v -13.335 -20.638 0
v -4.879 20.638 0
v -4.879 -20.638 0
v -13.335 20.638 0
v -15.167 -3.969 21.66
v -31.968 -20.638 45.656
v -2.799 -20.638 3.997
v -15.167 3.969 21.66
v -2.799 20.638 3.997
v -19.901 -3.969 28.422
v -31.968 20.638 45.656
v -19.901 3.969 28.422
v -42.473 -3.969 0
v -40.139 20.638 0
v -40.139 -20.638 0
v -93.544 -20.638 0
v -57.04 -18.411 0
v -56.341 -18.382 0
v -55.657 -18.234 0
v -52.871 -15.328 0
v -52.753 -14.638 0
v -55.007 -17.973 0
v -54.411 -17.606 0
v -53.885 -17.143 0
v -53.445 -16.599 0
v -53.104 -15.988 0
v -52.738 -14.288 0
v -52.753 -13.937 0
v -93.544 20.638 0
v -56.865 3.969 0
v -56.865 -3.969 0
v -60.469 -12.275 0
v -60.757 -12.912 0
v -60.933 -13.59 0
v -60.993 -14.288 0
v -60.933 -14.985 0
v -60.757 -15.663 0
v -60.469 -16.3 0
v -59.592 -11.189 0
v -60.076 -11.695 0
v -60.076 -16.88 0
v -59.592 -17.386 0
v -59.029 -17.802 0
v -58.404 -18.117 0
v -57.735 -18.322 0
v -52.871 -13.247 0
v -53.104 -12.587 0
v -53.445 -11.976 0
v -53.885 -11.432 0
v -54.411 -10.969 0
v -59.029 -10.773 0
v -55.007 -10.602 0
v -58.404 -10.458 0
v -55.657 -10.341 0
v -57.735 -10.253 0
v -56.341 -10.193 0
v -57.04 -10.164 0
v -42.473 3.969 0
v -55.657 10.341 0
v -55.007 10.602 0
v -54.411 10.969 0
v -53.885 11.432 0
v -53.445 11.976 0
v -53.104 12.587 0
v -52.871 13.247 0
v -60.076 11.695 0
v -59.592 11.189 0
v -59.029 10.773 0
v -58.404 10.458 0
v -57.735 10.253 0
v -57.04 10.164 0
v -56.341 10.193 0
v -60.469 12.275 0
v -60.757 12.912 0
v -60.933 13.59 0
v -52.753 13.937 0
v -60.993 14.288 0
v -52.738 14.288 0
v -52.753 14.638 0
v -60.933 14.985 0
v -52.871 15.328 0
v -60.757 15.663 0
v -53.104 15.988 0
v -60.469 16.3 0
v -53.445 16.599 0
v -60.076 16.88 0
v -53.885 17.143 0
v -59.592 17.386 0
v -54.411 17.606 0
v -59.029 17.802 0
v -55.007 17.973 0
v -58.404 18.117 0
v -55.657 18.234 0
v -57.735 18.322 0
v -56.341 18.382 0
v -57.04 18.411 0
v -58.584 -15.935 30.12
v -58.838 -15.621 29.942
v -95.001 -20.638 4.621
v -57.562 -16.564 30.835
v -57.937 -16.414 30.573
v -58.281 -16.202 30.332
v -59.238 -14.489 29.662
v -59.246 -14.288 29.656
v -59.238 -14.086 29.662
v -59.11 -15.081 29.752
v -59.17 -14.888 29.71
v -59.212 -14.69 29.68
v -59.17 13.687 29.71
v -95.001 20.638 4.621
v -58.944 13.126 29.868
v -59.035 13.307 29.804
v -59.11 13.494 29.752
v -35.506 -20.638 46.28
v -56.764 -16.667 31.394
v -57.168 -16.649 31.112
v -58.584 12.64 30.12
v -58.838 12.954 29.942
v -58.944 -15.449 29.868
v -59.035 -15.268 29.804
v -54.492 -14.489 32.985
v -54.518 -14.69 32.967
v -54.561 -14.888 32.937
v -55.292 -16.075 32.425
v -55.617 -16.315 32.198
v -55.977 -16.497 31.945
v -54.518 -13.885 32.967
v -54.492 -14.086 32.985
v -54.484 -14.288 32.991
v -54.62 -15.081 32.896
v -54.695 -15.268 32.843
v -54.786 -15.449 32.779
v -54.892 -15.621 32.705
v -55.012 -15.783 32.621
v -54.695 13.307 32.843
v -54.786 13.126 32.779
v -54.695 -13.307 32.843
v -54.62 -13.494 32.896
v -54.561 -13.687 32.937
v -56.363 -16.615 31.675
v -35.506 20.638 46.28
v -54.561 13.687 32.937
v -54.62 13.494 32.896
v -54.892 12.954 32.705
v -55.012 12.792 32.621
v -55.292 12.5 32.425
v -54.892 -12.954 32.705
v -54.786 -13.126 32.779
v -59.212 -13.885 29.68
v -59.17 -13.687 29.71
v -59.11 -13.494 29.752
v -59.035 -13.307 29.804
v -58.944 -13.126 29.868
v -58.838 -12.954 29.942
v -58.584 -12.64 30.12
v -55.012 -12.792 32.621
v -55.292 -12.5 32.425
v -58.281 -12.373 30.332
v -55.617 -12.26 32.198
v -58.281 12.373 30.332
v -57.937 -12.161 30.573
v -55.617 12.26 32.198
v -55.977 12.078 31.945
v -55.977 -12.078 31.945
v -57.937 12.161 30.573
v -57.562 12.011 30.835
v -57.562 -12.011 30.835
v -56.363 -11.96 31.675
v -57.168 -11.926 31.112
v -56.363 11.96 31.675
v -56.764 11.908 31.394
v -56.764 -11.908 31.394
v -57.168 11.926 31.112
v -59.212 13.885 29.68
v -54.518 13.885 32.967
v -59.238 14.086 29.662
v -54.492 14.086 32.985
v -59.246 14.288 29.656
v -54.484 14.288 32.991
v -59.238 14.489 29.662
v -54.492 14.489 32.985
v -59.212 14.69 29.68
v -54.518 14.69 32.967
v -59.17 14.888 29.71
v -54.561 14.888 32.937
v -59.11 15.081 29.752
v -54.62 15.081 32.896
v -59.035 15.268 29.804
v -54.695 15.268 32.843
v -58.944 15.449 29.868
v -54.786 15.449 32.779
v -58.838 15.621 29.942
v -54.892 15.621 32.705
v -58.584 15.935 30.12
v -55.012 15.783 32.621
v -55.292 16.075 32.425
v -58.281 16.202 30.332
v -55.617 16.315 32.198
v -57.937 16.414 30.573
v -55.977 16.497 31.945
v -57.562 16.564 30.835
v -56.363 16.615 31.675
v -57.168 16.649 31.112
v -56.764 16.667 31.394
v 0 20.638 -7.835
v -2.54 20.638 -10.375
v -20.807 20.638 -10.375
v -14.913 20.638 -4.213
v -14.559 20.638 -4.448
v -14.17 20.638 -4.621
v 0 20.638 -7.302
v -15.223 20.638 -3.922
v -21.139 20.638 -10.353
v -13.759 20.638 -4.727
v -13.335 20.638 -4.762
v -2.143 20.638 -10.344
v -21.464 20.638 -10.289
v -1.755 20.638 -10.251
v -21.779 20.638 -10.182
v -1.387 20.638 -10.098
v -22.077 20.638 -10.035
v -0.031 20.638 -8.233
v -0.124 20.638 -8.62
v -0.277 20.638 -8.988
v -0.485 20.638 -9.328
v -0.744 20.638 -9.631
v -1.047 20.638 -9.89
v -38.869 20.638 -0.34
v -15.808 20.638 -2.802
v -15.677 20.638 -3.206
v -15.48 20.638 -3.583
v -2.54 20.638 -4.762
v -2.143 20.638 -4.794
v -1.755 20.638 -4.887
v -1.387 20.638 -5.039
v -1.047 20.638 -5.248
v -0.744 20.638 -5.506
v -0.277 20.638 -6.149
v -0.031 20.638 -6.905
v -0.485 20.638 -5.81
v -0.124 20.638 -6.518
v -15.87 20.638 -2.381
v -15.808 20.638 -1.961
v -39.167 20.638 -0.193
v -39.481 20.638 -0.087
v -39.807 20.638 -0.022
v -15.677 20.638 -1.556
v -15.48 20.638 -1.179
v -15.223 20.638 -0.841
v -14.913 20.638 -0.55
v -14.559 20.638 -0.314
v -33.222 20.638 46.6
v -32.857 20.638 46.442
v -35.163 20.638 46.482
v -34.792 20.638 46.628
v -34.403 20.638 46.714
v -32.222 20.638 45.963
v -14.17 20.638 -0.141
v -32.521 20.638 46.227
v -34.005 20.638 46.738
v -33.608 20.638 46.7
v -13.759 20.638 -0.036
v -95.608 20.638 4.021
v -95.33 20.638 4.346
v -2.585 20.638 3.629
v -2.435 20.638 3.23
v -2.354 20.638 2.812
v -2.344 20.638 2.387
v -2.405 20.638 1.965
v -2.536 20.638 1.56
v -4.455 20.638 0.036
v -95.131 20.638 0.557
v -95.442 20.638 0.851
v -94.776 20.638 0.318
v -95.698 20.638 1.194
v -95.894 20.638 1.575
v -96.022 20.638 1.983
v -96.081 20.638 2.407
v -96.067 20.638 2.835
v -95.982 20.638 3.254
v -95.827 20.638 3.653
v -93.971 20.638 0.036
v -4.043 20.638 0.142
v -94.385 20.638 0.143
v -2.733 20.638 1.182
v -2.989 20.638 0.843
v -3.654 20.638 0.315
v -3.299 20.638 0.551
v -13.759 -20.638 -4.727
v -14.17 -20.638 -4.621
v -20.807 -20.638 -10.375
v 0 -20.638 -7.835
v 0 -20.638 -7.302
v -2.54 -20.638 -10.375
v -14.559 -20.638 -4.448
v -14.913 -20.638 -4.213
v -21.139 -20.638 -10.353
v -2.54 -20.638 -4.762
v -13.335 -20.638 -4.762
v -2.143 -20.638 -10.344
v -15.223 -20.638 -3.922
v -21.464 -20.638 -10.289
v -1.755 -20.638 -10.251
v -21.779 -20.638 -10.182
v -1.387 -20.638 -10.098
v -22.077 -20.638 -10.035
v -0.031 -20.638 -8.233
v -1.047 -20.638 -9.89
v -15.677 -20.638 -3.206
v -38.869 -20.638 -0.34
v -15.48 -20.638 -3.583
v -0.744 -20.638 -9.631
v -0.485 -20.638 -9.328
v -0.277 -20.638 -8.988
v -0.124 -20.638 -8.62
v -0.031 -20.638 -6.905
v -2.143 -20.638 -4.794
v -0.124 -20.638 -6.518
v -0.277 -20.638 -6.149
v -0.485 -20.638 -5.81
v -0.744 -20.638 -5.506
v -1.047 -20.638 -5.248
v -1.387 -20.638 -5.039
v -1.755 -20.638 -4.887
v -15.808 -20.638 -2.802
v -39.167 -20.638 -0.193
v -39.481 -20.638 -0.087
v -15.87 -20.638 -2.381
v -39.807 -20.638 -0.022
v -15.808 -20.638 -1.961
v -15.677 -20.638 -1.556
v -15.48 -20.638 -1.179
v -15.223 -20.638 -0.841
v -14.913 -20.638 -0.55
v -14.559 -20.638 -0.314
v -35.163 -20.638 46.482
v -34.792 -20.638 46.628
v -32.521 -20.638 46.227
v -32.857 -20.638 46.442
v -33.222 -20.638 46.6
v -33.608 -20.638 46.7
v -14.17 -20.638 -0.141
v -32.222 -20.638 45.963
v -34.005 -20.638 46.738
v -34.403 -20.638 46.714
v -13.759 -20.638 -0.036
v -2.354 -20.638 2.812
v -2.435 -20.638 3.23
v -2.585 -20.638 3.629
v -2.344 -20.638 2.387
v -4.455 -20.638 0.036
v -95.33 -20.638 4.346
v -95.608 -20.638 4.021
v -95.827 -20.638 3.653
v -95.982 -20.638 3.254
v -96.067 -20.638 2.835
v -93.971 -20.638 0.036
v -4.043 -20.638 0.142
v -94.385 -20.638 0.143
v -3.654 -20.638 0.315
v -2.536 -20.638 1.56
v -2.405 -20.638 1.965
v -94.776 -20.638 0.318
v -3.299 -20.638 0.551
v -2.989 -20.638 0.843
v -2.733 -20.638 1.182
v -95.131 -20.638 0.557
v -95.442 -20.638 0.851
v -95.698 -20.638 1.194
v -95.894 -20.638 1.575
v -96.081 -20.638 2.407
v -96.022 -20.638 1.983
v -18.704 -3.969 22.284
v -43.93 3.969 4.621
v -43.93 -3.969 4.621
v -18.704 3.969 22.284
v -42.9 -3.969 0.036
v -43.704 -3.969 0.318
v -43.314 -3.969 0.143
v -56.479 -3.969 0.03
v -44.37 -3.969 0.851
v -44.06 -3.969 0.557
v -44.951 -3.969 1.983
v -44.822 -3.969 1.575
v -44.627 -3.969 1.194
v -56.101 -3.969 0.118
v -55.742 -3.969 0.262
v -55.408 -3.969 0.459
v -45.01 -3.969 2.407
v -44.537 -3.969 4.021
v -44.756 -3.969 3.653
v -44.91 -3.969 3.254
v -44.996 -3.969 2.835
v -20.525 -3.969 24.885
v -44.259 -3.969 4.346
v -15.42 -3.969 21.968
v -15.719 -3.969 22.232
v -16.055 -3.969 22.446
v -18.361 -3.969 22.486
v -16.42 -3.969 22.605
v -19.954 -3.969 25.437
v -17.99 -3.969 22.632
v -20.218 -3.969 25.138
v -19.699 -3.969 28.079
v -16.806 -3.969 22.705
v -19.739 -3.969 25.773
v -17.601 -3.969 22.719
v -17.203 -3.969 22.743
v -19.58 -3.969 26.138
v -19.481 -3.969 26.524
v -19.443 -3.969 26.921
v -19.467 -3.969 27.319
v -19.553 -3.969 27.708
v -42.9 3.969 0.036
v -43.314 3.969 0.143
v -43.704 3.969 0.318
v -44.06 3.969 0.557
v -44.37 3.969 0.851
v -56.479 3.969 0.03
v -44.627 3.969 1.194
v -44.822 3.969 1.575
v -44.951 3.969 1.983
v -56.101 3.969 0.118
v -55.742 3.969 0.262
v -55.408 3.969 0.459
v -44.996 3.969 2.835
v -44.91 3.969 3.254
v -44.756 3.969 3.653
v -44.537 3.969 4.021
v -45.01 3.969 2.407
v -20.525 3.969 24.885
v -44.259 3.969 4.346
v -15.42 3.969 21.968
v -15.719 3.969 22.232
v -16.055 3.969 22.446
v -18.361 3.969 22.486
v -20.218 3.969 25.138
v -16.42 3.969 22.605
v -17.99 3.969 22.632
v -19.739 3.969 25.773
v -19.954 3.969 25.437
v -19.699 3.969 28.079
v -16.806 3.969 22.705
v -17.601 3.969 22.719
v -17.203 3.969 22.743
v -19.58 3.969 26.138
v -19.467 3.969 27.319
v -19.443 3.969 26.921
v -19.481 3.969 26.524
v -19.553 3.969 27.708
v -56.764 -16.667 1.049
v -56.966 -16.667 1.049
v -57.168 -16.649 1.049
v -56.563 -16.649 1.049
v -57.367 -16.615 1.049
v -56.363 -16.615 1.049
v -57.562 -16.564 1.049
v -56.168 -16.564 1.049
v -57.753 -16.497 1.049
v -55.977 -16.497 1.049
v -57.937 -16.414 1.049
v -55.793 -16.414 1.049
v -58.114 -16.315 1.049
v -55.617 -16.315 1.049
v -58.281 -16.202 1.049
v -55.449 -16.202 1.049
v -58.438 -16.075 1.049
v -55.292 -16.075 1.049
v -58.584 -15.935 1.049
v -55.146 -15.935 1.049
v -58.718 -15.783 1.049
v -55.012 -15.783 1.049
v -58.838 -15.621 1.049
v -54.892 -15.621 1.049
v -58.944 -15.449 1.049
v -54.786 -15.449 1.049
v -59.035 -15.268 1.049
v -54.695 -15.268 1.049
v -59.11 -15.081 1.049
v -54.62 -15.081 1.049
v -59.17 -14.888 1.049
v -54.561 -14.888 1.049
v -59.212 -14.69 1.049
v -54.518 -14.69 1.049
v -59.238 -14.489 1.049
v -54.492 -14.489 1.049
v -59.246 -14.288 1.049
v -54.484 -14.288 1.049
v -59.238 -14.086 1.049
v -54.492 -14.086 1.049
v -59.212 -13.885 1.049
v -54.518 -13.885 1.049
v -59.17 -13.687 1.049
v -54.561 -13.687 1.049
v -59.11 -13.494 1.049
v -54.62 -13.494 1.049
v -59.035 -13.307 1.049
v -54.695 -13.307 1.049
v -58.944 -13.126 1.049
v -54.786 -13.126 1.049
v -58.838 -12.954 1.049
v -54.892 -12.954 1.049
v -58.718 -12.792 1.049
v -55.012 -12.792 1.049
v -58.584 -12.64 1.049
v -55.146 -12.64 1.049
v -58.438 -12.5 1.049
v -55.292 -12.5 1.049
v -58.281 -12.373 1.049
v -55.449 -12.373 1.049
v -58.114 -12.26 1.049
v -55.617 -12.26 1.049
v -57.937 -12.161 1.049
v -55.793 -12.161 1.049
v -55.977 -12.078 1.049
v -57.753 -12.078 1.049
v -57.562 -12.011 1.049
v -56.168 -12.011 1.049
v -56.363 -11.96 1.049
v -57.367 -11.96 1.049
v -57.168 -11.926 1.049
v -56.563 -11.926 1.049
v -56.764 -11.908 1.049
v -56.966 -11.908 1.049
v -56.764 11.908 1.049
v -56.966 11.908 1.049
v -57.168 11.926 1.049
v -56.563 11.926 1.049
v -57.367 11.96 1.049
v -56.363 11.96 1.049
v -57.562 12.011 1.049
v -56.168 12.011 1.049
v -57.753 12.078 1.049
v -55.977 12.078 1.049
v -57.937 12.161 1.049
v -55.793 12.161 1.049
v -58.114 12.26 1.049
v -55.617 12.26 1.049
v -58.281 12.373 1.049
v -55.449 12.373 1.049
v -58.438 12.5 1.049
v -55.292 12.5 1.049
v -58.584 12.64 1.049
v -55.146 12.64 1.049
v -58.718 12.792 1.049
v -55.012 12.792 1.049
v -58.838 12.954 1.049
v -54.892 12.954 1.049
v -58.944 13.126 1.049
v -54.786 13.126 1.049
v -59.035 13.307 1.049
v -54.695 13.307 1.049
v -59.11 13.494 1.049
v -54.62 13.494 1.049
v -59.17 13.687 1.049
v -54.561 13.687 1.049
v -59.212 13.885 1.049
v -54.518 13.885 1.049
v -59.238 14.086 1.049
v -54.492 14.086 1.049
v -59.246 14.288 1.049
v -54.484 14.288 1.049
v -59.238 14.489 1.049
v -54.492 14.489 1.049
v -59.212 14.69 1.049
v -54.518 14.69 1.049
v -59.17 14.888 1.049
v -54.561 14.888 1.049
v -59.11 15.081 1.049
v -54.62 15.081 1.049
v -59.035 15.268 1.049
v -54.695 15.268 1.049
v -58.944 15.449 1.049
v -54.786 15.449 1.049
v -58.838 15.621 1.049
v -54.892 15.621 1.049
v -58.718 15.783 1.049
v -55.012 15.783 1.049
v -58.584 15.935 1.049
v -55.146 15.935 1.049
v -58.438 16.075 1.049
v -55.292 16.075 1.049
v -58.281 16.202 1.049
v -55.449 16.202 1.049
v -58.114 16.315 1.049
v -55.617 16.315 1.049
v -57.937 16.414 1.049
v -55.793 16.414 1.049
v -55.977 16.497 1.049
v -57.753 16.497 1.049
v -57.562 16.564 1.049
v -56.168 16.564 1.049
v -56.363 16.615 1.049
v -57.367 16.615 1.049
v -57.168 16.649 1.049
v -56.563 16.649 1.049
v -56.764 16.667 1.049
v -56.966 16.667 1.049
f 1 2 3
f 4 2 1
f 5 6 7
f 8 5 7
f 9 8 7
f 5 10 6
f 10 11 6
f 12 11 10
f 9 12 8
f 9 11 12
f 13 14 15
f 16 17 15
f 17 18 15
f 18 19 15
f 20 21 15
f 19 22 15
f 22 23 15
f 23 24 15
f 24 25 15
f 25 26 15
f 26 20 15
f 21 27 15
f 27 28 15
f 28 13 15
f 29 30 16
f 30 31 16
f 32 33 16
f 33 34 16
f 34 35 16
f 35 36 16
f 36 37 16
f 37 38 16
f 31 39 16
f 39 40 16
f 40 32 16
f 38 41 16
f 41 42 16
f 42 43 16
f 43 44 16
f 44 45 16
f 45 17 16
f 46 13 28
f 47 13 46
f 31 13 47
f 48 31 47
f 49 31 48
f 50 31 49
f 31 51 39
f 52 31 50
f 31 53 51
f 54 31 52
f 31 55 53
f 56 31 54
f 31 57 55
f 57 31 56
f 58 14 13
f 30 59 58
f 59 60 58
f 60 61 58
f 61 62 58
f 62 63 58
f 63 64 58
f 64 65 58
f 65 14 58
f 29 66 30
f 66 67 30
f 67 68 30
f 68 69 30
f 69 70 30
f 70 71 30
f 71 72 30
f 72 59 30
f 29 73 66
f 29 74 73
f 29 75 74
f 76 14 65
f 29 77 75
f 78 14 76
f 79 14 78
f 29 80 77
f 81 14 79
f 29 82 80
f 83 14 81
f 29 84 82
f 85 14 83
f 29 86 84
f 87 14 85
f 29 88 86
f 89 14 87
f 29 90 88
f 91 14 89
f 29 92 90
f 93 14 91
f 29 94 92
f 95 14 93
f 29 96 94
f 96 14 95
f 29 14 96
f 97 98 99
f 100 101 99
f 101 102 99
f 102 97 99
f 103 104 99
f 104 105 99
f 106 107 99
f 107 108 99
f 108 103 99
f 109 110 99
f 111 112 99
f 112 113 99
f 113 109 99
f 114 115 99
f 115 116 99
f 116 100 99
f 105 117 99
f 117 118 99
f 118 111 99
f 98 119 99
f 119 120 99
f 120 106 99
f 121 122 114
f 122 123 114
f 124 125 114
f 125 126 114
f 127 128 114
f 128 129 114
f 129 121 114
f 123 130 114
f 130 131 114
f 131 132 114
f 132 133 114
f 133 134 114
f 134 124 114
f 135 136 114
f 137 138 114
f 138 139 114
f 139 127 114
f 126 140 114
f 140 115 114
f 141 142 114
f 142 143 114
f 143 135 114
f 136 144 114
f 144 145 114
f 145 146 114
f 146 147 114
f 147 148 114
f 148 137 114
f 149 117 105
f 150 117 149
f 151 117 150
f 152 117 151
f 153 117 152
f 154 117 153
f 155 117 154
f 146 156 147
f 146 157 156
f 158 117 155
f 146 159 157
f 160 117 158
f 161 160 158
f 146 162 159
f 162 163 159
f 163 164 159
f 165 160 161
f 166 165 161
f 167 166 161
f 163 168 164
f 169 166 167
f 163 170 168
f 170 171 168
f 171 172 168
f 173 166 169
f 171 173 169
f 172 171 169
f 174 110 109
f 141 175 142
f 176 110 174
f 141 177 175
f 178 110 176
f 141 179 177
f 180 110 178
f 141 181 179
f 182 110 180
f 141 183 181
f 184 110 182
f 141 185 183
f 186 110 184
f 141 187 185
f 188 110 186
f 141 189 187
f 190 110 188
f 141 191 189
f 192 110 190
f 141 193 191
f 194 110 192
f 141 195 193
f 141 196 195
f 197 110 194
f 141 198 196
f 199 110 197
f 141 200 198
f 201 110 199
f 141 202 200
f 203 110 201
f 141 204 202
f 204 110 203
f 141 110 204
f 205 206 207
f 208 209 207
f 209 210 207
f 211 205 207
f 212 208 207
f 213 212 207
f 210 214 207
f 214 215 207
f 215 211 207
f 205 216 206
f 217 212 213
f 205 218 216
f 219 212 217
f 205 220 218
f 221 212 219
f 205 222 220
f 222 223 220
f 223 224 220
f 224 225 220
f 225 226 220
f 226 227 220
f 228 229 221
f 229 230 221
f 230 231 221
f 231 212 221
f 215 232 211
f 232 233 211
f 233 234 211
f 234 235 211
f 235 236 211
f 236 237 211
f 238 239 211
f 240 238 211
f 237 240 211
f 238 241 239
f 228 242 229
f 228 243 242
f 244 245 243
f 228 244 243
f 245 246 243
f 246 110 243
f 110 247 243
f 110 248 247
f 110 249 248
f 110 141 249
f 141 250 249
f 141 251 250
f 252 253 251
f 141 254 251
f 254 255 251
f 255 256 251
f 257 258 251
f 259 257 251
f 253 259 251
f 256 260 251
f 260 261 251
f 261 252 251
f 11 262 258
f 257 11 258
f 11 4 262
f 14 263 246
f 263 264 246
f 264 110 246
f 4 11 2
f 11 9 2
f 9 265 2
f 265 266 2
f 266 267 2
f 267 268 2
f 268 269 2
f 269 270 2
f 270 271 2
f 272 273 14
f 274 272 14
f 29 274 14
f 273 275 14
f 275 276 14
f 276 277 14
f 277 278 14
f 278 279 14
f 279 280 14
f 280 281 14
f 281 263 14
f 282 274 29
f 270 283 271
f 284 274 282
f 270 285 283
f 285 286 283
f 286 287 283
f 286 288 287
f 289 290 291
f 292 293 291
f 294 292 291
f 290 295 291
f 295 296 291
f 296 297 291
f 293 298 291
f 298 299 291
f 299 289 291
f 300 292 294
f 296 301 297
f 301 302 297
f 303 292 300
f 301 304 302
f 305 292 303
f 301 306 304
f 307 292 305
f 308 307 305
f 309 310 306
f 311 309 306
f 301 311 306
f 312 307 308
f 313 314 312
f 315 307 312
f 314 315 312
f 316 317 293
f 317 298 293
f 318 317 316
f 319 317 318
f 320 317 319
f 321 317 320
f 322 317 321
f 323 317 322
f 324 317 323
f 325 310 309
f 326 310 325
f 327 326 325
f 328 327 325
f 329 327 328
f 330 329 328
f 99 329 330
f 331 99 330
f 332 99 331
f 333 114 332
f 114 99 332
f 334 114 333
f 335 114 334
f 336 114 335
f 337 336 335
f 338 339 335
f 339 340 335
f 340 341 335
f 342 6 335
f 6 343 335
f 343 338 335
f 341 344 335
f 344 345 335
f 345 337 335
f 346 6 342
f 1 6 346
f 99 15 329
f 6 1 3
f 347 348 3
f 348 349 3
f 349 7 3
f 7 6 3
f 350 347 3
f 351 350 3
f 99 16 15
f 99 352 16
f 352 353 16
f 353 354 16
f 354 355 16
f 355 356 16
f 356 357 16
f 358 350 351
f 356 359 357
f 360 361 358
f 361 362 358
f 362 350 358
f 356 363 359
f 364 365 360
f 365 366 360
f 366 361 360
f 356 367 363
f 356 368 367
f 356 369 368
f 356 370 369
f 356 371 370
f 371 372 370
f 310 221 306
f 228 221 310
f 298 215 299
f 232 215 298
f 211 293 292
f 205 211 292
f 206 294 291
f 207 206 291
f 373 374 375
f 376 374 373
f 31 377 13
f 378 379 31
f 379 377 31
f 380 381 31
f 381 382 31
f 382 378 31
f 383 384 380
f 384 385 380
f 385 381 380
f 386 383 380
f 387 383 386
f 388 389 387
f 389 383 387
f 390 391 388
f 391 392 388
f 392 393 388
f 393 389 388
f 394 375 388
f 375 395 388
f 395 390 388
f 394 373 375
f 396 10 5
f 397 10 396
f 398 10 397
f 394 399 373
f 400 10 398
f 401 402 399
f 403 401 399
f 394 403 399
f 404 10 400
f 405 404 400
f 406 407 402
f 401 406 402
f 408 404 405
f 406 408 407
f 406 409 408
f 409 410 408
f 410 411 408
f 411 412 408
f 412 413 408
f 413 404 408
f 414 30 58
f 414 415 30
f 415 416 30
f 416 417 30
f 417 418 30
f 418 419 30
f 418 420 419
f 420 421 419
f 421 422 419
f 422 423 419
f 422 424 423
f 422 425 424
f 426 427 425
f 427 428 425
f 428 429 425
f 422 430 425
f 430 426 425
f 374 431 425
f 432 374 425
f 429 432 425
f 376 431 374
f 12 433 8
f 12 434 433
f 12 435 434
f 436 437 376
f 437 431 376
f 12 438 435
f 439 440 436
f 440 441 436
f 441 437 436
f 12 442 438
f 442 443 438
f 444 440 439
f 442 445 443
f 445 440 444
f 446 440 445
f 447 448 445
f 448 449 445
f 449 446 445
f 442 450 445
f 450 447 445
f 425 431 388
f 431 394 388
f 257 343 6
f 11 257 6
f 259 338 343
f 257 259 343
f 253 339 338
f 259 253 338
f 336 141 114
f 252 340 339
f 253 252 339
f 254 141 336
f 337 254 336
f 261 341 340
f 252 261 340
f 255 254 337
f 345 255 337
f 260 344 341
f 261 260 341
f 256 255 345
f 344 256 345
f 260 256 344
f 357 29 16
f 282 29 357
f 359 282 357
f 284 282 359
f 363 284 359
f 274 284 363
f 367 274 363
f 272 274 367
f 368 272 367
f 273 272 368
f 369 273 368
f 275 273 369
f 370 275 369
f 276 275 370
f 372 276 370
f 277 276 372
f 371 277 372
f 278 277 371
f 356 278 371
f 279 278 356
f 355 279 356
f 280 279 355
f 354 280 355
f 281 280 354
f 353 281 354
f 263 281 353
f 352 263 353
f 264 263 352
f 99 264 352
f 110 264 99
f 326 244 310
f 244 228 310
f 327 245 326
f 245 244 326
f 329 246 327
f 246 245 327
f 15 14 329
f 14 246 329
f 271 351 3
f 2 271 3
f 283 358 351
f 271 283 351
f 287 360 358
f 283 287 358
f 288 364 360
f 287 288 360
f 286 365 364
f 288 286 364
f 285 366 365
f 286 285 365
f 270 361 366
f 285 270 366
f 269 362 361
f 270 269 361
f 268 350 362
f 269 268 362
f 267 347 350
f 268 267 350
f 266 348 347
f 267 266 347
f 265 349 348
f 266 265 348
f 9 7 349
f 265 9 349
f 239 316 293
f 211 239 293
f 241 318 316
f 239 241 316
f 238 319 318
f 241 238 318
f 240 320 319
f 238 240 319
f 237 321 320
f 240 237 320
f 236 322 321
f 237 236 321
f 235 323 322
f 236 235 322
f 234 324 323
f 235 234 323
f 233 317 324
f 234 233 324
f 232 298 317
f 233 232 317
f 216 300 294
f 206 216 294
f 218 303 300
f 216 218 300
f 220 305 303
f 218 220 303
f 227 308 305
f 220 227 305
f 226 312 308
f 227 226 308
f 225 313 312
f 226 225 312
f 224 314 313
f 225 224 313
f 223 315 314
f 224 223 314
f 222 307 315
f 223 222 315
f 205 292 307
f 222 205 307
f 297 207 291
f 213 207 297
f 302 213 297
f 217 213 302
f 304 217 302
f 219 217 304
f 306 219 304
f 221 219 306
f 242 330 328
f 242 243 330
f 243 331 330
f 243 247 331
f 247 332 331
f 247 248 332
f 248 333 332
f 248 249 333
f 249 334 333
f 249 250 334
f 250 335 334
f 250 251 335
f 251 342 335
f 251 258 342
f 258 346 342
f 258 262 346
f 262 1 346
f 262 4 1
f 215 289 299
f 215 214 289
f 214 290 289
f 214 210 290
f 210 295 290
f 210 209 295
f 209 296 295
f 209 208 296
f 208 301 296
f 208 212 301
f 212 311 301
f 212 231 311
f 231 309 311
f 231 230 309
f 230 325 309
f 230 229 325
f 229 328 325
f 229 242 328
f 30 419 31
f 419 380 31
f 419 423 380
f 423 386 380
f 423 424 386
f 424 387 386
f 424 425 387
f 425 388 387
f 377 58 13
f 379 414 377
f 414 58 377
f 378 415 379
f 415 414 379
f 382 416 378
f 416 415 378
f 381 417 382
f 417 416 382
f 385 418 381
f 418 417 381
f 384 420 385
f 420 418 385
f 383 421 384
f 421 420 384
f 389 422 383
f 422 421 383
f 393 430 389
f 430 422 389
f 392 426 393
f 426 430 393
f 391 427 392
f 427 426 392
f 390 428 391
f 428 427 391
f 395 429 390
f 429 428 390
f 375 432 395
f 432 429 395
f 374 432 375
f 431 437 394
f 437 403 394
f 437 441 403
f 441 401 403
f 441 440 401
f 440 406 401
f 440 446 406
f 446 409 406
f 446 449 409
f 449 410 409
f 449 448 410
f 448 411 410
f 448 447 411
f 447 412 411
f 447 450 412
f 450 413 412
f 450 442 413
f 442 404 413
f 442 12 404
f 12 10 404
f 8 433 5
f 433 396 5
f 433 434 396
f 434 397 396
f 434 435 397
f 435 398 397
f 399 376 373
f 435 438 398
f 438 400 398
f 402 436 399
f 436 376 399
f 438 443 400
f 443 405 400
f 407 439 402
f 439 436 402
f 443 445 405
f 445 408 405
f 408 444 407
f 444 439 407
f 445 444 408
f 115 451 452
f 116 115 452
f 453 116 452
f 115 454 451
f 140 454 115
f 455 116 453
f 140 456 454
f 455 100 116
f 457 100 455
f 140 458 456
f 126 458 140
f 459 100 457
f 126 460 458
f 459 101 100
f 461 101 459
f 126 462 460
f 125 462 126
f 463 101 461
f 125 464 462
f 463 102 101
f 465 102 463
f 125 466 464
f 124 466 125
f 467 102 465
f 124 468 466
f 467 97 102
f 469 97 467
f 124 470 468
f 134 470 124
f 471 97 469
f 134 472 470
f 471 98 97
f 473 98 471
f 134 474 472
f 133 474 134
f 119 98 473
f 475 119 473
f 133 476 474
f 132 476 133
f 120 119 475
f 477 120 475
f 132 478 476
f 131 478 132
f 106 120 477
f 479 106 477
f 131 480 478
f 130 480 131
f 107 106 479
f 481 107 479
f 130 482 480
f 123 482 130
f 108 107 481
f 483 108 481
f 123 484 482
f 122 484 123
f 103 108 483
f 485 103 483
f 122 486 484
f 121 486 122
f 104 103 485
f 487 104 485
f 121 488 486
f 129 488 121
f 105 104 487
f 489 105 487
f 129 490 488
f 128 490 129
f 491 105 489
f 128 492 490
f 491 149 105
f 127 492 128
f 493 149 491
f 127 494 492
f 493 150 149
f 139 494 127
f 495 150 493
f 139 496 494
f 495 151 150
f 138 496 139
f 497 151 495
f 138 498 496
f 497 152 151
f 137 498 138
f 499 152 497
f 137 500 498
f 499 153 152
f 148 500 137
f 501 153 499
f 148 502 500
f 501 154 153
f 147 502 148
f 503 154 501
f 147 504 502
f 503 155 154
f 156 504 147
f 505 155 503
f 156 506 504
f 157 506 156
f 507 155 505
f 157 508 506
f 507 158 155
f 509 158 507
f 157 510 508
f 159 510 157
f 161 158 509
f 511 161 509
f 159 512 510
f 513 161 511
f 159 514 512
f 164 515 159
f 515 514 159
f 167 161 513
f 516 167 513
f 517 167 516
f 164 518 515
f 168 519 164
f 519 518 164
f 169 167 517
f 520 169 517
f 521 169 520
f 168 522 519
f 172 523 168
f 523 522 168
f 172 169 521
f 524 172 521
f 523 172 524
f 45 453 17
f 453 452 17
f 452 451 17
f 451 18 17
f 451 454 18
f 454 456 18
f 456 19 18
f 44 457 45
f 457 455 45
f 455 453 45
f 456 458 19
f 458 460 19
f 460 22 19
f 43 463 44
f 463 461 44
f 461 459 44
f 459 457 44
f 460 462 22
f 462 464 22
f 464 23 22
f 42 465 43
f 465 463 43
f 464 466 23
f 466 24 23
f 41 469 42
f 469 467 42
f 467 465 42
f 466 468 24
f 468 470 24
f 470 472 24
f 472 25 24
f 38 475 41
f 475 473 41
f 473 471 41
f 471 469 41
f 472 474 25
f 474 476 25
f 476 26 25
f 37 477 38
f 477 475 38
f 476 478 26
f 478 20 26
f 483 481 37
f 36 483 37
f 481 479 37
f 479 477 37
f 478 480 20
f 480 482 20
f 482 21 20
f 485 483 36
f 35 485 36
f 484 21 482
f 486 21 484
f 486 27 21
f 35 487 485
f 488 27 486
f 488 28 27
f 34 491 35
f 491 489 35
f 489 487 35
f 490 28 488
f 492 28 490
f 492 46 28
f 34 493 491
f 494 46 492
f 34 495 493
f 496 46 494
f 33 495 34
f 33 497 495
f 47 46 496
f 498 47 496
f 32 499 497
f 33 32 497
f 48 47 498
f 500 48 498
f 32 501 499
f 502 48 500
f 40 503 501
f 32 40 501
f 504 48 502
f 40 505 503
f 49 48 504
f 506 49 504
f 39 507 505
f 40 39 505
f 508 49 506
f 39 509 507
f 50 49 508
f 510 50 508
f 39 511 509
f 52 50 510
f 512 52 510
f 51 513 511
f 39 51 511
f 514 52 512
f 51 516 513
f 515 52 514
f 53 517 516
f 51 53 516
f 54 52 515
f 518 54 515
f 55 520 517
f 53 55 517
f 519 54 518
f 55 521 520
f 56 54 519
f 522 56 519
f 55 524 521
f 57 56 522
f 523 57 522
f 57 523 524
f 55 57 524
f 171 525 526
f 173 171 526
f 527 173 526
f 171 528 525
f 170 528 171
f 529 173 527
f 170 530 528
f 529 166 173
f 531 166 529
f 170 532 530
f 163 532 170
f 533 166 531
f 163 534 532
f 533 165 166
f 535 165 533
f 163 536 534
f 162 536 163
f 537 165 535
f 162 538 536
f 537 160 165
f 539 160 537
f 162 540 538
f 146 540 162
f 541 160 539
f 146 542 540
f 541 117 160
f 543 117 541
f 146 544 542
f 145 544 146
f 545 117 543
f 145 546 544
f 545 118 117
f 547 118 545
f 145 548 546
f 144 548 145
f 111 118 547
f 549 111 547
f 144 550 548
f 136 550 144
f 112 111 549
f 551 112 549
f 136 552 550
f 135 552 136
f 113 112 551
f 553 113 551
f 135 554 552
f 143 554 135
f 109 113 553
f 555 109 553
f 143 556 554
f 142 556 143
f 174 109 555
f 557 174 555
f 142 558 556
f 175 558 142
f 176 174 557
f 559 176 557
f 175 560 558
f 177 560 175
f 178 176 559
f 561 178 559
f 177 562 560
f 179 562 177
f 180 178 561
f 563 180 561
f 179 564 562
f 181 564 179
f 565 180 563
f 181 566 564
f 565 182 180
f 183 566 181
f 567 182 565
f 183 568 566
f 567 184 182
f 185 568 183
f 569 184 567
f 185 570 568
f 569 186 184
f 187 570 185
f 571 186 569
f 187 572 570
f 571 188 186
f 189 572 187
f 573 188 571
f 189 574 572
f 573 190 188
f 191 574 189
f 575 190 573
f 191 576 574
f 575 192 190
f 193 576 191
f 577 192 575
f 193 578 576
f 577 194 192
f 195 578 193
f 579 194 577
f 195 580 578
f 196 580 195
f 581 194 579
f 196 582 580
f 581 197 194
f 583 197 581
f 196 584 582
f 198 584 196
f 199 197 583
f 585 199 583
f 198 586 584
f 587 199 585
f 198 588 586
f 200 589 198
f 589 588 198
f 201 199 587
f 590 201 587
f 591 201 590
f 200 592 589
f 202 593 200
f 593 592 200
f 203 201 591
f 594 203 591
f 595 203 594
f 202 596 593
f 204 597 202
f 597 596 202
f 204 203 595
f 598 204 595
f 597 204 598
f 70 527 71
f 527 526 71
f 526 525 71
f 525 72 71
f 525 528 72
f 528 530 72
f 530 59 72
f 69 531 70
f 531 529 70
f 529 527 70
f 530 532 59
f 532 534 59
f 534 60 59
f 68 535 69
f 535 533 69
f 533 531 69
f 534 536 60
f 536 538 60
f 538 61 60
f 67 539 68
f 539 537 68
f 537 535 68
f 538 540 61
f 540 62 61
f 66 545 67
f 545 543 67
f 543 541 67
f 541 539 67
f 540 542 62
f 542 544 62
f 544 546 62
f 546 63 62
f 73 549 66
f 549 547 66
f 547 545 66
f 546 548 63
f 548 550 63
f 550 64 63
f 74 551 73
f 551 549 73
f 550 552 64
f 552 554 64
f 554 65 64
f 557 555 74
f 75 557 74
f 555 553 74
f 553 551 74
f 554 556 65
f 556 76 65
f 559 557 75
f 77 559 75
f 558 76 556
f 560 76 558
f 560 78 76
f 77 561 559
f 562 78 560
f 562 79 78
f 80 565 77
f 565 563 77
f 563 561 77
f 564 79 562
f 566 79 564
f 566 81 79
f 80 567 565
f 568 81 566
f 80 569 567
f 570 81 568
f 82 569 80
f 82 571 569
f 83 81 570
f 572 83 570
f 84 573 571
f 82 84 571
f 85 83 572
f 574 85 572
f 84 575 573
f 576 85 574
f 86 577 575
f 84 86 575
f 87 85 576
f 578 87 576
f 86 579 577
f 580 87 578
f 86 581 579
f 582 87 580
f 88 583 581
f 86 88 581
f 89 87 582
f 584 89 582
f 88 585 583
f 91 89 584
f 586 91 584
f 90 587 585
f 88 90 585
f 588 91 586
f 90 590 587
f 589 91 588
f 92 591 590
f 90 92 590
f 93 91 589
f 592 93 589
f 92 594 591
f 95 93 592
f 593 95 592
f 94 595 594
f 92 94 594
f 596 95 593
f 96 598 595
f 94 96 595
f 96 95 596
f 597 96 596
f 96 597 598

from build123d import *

# Parameters (mm, degrees)
BOSS_EXTRUDE1_DEPTH = 20.6375
BOSS_EXTRUDE2_DEPTH = 20.6375
CUT_EXTRUDE1_DEPTH  = 3.96875
FILLET1_R           = 2.54


with BuildPart() as part:
    # Sketch3 → Boss-Extrude1 (new, symmetric)
    with BuildSketch(Plane(origin=(0, 0, 0), x_dir=(1, 0, 0), z_dir=(0, 1, 0))):
        Polygon((0, 0), (-101.6, 0), (-33.425376719, -47.736385136), align=None)
    extrude(amount=BOSS_EXTRUDE1_DEPTH, both=True)

    # Sketch1 → Boss-Extrude2 (add, symmetric)
    with BuildSketch(Plane(origin=(0, 0, 0), x_dir=(1, 0, 0), z_dir=(0, 1, 0))):
        Polygon((-21.487660076, 10.375160076), (0, 10.375160076), (0, 4.7625), (-15.875, 4.7625), (-15.875, 0), (-39.457964463, 0), align=None)
    extrude(amount=BOSS_EXTRUDE2_DEPTH, both=True)

    # Sketch5 → Cut-Extrude1 (cut, symmetric)
    with BuildSketch(Plane(origin=(0, 0, 0), x_dir=(1, 0, 0), z_dir=(0, 1, 0))):
        Polygon((-56.064295192, 0), (-18.444588457, -26.341602241), (-16.623483272, -23.7407945), (-54.243190006, 2.600807741), align=None)
    extrude(amount=CUT_EXTRUDE1_DEPTH, both=True, mode=Mode.SUBTRACT)

    # Fillet1
    # the kernel refuses this fillet: 2.54 mm, written as the material it adds along each edge
    with BuildSketch(Plane(origin=(-15.875, 20.6375, -4.7625), x_dir=(0, 0, 1), z_dir=(0, -1, 0))) as fillet1_piece_1:
        with BuildLine():
            CenterArc((FILLET1_R, -FILLET1_R), FILLET1_R, 90, 90)
            Line((0, -FILLET1_R), (0, 0))
            Line((0, 0), (FILLET1_R, 0))
        make_face()
    extrude(amount=41.275)
    with BuildSketch(Plane(origin=(-15.875, -20.6375, 0), x_dir=(1, 0, 0), z_dir=(0, 1, 0))) as fillet1_piece_2:
        with BuildLine():
            CenterArc((FILLET1_R, FILLET1_R), FILLET1_R, 180, 90)
            Line((0, FILLET1_R), (0, 0))
            Line((0, 0), (FILLET1_R, 0))
        make_face()
    extrude(amount=41.275)
    with BuildSketch(Plane(origin=(-39.457964463, -20.6375, 0), x_dir=(0.8660254037844413, 0, -0.49999999999999567), z_dir=(0, 1, 0))) as fillet1_piece_3:
        with BuildLine():
            CenterArc((FILLET1_R * 0.267949192431, FILLET1_R), FILLET1_R, 240, 30)
            Line((-FILLET1_R * 0.232050807569, FILLET1_R * 0.133974596216), (0, 0))
            Line((0, 0), (FILLET1_R * 0.267949192431, 0))
        make_face()
    extrude(amount=41.275)
    # the kernel refuses this fillet: 2.54 mm, written as the material it takes off along each edge
    with BuildSketch(Plane(origin=(-56.064295192, 3.96875, 0), x_dir=(-1, 0, 0), z_dir=(0, -1, 0))) as fillet1_2_piece_1:
        with BuildLine():
            CenterArc((FILLET1_R * 0.315298788879, -FILLET1_R), FILLET1_R, 90, 35)
            Line((-FILLET1_R * 0.258277647472, -FILLET1_R * 0.180847955711), (0, 0))
            Line((0, 0), (FILLET1_R * 0.315298788879, 0))
        make_face()
    extrude(amount=7.9375, mode=Mode.SUBTRACT)
    with BuildSketch(Plane(origin=(-50.528851616, 3.96875, 0), x_dir=(1, 0, 0), z_dir=(0, -1, 0))) as fillet1_2_piece_2:
        with BuildLine():
            CenterArc((FILLET1_R * 3.17159480236, FILLET1_R), FILLET1_R, 125, 145)
            Line((FILLET1_R * 2.59801836601, FILLET1_R * 1.81915204429), (0, 0))
            Line((0, 0), (FILLET1_R * 3.17159480236, 0))
        make_face()
    extrude(amount=7.9375, mode=Mode.SUBTRACT)
    with BuildSketch(Plane(origin=(-18.444588457, -3.96875, 26.341602241), x_dir=(-0.5735764363510412, 0, 0.8191520442889952), z_dir=(0, 1, 0))) as fillet1_2_piece_3:
        with BuildLine():
            CenterArc((FILLET1_R, -FILLET1_R), FILLET1_R, 90, 90)
            Line((0, -FILLET1_R), (0, 0))
            Line((0, 0), (FILLET1_R, 0))
        make_face()
    extrude(amount=7.9375, mode=Mode.SUBTRACT)
    with BuildSketch(Plane(origin=(-16.623483272, -3.96875, 23.7407945), x_dir=(0.573576436351041, 0, -0.8191520442889954), z_dir=(0, 1, 0))) as fillet1_2_piece_4:
        with BuildLine():
            CenterArc((FILLET1_R, FILLET1_R), FILLET1_R, 180, 90)
            Line((0, FILLET1_R), (0, 0))
            Line((0, 0), (FILLET1_R, 0))
        make_face()
    extrude(amount=7.9375, mode=Mode.SUBTRACT)
    with BuildSketch(Plane(origin=(0, 32.835736506, 0), x_dir=(-1, 0, 0), z_dir=(0, -1, 0))) as fillet1_2_piece_5:
        with BuildLine():
            CenterArc((FILLET1_R * 1.92098212697, -FILLET1_R), FILLET1_R, 90, 125)
            Line((FILLET1_R * 1.10183008268, -FILLET1_R * 1.57357643635), (0, 0))
            Line((0, 0), (FILLET1_R * 1.92098212697, 0))
        make_face()
    extrude(amount=65.671473013, mode=Mode.SUBTRACT)
    with BuildSketch(Plane(origin=(0, 26.9875, -4.7625), x_dir=(-1, 0, 0), z_dir=(0, -1, 0)), Plane(origin=(0, 26.9875, -10.375160076), x_dir=(0, 0, 1), z_dir=(0, -1, 0))) as fillet1_2_piece_6:
        with BuildLine():
            CenterArc((FILLET1_R, FILLET1_R), FILLET1_R, 180, 90)
            Line((0, FILLET1_R), (0, 0))
            Line((0, 0), (FILLET1_R, 0))
        make_face()
    extrude(amount=53.975, mode=Mode.SUBTRACT)
    with BuildSketch(Plane(origin=(-21.487660076, -22.338977372, -10.375160076), x_dir=(1, 0, 0), z_dir=(0, 1, 0))) as fillet1_2_piece_7:
        with BuildLine():
            CenterArc((FILLET1_R * 0.267949192431, -FILLET1_R), FILLET1_R, 90, 30)
            Line((-FILLET1_R * 0.232050807569, -FILLET1_R * 0.133974596216), (0, 0))
            Line((0, 0), (FILLET1_R * 0.267949192431, 0))
        make_face()
    extrude(amount=44.677954744, mode=Mode.SUBTRACT)
    with BuildSketch(Plane(origin=(-33.425376719, 26.9875, 47.736385136), x_dir=(0.5735764363510407, 0, -0.8191520442889956), z_dir=(0, -1, 0))) as fillet1_2_piece_8:
        with BuildLine():
            CenterArc((FILLET1_R, -FILLET1_R), FILLET1_R, 90, 90)
            Line((0, -FILLET1_R), (0, 0))
            Line((0, 0), (FILLET1_R, 0))
        make_face()
    extrude(amount=53.975, mode=Mode.SUBTRACT)
    with BuildSketch(Plane(origin=(-101.6, -40.777126995, 0), x_dir=(1, 0, 0), z_dir=(0, 1, 0))) as fillet1_2_piece_9:
        with BuildLine():
            CenterArc((FILLET1_R * 3.17159480236, -FILLET1_R), FILLET1_R, 90, 145)
            Line((FILLET1_R * 2.59801836601, -FILLET1_R * 1.81915204429), (0, 0))
            Line((0, 0), (FILLET1_R * 3.17159480236, 0))
        make_face()
    extrude(amount=81.55425399, mode=Mode.SUBTRACT)

    # Sketch7 → Cut-Revolve1 (revolve, cut)
    with BuildSketch(Plane(origin=(-56.865154115, 0, 0), x_dir=(0, 0, -1), z_dir=(1, 0, 0)), mode=Mode.PRIVATE) as cut_revolve1_sk:
        Polygon((0, -18.415), (-1.049252856, -16.66875), (-46.738854795, -16.66875), (-46.738854795, -14.2875), (0, -14.2875), align=None)
    cut_revolve1 = revolve(cut_revolve1_sk.sketch.rotate(Axis((-56.865154115, -14.2875, 46.738854795), (0, 0, -1)), 270), axis=Axis((-56.865154115, -14.2875, 46.738854795), (0, 0, -1)), mode=Mode.SUBTRACT)

    # Mirror1: Cut-Revolve1 across plane
    add(cut_revolve1.mirror(Plane.ZX), mode=Mode.SUBTRACT)


solid = part.part
